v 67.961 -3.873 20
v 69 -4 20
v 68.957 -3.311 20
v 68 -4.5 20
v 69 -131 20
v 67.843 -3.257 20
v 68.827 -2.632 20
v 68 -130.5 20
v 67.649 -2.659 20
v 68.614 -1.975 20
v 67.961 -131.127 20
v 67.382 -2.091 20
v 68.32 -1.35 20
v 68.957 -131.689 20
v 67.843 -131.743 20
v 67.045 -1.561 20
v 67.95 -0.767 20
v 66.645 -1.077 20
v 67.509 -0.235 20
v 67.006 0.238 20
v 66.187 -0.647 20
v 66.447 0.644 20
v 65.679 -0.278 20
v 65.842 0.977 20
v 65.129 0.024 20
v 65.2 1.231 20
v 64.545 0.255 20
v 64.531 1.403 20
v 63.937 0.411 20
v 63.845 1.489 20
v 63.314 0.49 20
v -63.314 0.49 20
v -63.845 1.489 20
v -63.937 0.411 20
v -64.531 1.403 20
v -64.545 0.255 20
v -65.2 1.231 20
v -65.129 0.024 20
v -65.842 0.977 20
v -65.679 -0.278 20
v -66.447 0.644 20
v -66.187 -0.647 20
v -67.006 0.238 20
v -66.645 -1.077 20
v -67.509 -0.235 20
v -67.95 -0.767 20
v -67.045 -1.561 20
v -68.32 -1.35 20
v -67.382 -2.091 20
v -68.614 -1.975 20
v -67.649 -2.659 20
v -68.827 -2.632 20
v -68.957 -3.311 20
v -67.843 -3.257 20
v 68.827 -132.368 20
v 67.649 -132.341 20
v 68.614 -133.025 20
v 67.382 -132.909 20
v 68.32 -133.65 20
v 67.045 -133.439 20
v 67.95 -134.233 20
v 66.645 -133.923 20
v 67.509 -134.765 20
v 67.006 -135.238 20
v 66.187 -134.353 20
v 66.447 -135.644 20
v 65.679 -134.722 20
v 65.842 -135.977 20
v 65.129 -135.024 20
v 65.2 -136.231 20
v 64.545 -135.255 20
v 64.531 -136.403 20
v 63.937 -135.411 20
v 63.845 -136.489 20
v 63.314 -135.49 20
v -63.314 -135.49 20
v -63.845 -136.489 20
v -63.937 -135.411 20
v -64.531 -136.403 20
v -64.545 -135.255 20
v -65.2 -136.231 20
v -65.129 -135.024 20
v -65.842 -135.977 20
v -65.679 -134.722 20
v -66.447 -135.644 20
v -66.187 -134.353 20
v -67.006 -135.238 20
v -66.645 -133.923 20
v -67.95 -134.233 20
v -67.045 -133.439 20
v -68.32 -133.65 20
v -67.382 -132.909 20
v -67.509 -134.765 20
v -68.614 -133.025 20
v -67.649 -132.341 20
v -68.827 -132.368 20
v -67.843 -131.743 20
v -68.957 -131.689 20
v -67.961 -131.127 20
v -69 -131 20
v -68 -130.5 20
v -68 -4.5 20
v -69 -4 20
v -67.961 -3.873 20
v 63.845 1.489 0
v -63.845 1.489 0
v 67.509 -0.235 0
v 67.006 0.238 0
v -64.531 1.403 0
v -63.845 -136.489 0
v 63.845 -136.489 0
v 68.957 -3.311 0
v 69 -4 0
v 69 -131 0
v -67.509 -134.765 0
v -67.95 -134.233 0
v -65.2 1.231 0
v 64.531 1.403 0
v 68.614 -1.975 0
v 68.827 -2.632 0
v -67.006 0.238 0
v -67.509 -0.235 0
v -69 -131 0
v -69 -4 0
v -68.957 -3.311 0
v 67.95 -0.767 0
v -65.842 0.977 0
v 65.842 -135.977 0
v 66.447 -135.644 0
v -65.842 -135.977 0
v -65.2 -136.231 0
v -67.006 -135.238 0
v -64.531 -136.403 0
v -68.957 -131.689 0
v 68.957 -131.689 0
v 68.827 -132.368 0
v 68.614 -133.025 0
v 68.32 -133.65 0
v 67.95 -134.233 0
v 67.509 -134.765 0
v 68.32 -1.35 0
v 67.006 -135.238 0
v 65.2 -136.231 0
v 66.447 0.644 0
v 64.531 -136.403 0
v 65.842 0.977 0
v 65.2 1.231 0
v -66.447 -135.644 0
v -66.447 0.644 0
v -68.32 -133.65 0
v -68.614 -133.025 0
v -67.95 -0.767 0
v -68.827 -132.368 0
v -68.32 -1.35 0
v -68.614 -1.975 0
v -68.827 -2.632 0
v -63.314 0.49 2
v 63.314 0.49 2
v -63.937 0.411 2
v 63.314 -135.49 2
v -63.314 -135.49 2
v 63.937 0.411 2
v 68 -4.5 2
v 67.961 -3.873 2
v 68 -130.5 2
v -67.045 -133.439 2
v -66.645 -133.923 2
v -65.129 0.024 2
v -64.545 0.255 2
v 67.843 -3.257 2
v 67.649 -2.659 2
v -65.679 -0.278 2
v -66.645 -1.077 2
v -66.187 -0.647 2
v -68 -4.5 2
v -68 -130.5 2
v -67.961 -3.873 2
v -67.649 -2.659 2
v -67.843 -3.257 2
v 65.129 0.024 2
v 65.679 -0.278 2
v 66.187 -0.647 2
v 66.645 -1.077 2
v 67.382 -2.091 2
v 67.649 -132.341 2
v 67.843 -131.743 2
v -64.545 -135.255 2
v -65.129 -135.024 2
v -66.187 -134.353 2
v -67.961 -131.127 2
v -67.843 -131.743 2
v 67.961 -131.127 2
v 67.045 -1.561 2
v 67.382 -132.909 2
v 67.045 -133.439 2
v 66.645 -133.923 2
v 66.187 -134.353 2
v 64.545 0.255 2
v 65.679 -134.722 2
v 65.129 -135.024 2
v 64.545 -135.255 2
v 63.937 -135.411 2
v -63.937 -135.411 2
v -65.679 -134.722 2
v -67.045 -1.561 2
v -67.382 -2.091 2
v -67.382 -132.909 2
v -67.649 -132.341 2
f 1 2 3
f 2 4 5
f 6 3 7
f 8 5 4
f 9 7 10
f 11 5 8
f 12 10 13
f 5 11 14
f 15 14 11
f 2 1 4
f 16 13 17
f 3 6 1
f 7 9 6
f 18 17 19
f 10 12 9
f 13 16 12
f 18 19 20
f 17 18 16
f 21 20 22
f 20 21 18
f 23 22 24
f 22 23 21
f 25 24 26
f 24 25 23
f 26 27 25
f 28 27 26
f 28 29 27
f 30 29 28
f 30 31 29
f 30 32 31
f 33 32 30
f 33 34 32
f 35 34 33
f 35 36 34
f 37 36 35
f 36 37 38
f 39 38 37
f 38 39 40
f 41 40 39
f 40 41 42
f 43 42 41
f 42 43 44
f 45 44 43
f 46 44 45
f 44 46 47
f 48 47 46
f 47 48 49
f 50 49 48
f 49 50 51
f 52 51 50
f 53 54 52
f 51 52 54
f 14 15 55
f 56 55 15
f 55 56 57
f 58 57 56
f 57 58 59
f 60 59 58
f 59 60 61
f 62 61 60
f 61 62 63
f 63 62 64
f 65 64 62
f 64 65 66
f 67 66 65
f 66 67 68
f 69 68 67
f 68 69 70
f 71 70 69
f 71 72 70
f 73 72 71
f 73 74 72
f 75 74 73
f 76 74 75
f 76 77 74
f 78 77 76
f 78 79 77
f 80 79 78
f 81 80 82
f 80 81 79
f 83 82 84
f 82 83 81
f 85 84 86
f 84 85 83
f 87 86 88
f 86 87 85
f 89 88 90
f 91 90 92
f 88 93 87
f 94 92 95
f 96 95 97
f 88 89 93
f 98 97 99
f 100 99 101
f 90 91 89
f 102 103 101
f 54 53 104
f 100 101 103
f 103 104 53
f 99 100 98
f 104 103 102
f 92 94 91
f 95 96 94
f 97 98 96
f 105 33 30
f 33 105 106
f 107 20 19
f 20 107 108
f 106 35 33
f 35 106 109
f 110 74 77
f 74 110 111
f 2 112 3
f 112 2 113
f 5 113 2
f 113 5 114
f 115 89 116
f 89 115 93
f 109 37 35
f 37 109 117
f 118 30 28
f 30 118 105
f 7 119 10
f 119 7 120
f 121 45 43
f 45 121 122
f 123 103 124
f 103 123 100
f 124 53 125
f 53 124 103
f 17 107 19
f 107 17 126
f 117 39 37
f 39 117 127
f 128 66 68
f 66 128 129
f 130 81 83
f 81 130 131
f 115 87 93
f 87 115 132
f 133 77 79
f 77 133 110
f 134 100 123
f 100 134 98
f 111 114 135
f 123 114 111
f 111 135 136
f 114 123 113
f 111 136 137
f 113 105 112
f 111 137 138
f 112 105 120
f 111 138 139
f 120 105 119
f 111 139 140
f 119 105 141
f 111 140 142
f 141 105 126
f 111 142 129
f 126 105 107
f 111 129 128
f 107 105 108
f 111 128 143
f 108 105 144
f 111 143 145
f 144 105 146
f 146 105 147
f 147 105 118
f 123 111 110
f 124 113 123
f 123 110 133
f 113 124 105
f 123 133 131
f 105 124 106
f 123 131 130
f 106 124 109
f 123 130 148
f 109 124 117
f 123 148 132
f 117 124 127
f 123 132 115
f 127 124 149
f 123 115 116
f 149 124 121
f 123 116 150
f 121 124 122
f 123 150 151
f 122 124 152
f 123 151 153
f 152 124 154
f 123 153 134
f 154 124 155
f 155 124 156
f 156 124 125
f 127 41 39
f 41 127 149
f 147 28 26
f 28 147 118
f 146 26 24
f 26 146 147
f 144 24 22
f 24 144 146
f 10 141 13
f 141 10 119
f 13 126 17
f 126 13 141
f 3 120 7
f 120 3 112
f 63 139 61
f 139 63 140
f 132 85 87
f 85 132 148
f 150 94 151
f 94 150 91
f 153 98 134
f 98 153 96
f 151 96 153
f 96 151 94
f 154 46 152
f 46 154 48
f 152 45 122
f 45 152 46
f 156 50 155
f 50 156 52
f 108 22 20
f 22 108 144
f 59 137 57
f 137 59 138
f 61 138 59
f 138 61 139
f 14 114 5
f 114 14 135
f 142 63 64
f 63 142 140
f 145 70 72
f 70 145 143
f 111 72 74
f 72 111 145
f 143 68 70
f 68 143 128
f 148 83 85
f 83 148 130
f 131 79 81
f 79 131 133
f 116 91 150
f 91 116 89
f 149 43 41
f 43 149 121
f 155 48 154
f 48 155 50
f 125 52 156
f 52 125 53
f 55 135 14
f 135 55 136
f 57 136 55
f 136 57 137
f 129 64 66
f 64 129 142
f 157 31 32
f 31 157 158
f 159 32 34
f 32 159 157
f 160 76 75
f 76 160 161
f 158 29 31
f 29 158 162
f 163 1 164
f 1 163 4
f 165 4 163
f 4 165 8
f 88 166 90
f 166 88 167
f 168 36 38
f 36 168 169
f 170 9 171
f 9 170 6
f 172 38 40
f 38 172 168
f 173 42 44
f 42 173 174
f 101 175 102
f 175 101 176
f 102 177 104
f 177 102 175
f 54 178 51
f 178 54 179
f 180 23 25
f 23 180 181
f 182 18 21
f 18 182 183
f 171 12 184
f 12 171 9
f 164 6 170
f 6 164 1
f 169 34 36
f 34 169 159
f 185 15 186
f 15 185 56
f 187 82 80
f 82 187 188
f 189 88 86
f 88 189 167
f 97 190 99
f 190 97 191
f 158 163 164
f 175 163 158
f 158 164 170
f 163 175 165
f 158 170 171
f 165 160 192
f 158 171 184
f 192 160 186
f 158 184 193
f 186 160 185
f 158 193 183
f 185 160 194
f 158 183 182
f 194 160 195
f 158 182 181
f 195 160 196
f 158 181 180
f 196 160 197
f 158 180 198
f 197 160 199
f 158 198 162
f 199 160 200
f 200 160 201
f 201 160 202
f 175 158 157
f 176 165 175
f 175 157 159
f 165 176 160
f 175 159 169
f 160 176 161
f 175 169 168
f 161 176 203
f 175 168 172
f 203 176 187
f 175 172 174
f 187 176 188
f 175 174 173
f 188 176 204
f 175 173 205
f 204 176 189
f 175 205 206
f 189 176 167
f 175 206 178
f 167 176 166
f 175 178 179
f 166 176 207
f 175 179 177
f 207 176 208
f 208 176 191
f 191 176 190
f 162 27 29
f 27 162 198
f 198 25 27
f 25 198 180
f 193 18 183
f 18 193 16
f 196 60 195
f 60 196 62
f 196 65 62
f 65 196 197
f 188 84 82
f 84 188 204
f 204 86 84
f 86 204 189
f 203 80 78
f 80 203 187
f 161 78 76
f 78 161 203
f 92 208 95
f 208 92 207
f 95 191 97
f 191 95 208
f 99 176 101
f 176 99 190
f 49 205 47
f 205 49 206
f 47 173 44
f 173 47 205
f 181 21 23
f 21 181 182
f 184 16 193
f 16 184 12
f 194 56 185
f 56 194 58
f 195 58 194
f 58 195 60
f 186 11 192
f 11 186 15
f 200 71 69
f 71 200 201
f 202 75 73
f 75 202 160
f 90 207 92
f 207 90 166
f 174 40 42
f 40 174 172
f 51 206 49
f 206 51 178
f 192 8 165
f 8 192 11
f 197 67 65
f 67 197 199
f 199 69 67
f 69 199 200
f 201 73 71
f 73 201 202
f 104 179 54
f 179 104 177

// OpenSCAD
$fn = 50;


difference() {
	union() {
		translate(v = [0, -67.5000000000, 0]) {
			hull() {
				translate(v = [-63.5000000000, 63.5000000000, 0]) {
					cylinder(h = 20, r = 5.5000000000);
				}
				translate(v = [63.5000000000, 63.5000000000, 0]) {
					cylinder(h = 20, r = 5.5000000000);
				}
				translate(v = [-63.5000000000, -63.5000000000, 0]) {
					cylinder(h = 20, r = 5.5000000000);
				}
				translate(v = [63.5000000000, -63.5000000000, 0]) {
					cylinder(h = 20, r = 5.5000000000);
				}
			}
		}
	}
	union() {
		translate(v = [0, -67.5000000000, 2]) {
			hull() {
				translate(v = [-63.0000000000, 63.0000000000, 0]) {
					cylinder(h = 40, r = 5);
				}
				translate(v = [63.0000000000, 63.0000000000, 0]) {
					cylinder(h = 40, r = 5);
				}
				translate(v = [-63.0000000000, -63.0000000000, 0]) {
					cylinder(h = 40, r = 5);
				}
				translate(v = [63.0000000000, -63.0000000000, 0]) {
					cylinder(h = 40, r = 5);
				}
			}
		}
	}
}
